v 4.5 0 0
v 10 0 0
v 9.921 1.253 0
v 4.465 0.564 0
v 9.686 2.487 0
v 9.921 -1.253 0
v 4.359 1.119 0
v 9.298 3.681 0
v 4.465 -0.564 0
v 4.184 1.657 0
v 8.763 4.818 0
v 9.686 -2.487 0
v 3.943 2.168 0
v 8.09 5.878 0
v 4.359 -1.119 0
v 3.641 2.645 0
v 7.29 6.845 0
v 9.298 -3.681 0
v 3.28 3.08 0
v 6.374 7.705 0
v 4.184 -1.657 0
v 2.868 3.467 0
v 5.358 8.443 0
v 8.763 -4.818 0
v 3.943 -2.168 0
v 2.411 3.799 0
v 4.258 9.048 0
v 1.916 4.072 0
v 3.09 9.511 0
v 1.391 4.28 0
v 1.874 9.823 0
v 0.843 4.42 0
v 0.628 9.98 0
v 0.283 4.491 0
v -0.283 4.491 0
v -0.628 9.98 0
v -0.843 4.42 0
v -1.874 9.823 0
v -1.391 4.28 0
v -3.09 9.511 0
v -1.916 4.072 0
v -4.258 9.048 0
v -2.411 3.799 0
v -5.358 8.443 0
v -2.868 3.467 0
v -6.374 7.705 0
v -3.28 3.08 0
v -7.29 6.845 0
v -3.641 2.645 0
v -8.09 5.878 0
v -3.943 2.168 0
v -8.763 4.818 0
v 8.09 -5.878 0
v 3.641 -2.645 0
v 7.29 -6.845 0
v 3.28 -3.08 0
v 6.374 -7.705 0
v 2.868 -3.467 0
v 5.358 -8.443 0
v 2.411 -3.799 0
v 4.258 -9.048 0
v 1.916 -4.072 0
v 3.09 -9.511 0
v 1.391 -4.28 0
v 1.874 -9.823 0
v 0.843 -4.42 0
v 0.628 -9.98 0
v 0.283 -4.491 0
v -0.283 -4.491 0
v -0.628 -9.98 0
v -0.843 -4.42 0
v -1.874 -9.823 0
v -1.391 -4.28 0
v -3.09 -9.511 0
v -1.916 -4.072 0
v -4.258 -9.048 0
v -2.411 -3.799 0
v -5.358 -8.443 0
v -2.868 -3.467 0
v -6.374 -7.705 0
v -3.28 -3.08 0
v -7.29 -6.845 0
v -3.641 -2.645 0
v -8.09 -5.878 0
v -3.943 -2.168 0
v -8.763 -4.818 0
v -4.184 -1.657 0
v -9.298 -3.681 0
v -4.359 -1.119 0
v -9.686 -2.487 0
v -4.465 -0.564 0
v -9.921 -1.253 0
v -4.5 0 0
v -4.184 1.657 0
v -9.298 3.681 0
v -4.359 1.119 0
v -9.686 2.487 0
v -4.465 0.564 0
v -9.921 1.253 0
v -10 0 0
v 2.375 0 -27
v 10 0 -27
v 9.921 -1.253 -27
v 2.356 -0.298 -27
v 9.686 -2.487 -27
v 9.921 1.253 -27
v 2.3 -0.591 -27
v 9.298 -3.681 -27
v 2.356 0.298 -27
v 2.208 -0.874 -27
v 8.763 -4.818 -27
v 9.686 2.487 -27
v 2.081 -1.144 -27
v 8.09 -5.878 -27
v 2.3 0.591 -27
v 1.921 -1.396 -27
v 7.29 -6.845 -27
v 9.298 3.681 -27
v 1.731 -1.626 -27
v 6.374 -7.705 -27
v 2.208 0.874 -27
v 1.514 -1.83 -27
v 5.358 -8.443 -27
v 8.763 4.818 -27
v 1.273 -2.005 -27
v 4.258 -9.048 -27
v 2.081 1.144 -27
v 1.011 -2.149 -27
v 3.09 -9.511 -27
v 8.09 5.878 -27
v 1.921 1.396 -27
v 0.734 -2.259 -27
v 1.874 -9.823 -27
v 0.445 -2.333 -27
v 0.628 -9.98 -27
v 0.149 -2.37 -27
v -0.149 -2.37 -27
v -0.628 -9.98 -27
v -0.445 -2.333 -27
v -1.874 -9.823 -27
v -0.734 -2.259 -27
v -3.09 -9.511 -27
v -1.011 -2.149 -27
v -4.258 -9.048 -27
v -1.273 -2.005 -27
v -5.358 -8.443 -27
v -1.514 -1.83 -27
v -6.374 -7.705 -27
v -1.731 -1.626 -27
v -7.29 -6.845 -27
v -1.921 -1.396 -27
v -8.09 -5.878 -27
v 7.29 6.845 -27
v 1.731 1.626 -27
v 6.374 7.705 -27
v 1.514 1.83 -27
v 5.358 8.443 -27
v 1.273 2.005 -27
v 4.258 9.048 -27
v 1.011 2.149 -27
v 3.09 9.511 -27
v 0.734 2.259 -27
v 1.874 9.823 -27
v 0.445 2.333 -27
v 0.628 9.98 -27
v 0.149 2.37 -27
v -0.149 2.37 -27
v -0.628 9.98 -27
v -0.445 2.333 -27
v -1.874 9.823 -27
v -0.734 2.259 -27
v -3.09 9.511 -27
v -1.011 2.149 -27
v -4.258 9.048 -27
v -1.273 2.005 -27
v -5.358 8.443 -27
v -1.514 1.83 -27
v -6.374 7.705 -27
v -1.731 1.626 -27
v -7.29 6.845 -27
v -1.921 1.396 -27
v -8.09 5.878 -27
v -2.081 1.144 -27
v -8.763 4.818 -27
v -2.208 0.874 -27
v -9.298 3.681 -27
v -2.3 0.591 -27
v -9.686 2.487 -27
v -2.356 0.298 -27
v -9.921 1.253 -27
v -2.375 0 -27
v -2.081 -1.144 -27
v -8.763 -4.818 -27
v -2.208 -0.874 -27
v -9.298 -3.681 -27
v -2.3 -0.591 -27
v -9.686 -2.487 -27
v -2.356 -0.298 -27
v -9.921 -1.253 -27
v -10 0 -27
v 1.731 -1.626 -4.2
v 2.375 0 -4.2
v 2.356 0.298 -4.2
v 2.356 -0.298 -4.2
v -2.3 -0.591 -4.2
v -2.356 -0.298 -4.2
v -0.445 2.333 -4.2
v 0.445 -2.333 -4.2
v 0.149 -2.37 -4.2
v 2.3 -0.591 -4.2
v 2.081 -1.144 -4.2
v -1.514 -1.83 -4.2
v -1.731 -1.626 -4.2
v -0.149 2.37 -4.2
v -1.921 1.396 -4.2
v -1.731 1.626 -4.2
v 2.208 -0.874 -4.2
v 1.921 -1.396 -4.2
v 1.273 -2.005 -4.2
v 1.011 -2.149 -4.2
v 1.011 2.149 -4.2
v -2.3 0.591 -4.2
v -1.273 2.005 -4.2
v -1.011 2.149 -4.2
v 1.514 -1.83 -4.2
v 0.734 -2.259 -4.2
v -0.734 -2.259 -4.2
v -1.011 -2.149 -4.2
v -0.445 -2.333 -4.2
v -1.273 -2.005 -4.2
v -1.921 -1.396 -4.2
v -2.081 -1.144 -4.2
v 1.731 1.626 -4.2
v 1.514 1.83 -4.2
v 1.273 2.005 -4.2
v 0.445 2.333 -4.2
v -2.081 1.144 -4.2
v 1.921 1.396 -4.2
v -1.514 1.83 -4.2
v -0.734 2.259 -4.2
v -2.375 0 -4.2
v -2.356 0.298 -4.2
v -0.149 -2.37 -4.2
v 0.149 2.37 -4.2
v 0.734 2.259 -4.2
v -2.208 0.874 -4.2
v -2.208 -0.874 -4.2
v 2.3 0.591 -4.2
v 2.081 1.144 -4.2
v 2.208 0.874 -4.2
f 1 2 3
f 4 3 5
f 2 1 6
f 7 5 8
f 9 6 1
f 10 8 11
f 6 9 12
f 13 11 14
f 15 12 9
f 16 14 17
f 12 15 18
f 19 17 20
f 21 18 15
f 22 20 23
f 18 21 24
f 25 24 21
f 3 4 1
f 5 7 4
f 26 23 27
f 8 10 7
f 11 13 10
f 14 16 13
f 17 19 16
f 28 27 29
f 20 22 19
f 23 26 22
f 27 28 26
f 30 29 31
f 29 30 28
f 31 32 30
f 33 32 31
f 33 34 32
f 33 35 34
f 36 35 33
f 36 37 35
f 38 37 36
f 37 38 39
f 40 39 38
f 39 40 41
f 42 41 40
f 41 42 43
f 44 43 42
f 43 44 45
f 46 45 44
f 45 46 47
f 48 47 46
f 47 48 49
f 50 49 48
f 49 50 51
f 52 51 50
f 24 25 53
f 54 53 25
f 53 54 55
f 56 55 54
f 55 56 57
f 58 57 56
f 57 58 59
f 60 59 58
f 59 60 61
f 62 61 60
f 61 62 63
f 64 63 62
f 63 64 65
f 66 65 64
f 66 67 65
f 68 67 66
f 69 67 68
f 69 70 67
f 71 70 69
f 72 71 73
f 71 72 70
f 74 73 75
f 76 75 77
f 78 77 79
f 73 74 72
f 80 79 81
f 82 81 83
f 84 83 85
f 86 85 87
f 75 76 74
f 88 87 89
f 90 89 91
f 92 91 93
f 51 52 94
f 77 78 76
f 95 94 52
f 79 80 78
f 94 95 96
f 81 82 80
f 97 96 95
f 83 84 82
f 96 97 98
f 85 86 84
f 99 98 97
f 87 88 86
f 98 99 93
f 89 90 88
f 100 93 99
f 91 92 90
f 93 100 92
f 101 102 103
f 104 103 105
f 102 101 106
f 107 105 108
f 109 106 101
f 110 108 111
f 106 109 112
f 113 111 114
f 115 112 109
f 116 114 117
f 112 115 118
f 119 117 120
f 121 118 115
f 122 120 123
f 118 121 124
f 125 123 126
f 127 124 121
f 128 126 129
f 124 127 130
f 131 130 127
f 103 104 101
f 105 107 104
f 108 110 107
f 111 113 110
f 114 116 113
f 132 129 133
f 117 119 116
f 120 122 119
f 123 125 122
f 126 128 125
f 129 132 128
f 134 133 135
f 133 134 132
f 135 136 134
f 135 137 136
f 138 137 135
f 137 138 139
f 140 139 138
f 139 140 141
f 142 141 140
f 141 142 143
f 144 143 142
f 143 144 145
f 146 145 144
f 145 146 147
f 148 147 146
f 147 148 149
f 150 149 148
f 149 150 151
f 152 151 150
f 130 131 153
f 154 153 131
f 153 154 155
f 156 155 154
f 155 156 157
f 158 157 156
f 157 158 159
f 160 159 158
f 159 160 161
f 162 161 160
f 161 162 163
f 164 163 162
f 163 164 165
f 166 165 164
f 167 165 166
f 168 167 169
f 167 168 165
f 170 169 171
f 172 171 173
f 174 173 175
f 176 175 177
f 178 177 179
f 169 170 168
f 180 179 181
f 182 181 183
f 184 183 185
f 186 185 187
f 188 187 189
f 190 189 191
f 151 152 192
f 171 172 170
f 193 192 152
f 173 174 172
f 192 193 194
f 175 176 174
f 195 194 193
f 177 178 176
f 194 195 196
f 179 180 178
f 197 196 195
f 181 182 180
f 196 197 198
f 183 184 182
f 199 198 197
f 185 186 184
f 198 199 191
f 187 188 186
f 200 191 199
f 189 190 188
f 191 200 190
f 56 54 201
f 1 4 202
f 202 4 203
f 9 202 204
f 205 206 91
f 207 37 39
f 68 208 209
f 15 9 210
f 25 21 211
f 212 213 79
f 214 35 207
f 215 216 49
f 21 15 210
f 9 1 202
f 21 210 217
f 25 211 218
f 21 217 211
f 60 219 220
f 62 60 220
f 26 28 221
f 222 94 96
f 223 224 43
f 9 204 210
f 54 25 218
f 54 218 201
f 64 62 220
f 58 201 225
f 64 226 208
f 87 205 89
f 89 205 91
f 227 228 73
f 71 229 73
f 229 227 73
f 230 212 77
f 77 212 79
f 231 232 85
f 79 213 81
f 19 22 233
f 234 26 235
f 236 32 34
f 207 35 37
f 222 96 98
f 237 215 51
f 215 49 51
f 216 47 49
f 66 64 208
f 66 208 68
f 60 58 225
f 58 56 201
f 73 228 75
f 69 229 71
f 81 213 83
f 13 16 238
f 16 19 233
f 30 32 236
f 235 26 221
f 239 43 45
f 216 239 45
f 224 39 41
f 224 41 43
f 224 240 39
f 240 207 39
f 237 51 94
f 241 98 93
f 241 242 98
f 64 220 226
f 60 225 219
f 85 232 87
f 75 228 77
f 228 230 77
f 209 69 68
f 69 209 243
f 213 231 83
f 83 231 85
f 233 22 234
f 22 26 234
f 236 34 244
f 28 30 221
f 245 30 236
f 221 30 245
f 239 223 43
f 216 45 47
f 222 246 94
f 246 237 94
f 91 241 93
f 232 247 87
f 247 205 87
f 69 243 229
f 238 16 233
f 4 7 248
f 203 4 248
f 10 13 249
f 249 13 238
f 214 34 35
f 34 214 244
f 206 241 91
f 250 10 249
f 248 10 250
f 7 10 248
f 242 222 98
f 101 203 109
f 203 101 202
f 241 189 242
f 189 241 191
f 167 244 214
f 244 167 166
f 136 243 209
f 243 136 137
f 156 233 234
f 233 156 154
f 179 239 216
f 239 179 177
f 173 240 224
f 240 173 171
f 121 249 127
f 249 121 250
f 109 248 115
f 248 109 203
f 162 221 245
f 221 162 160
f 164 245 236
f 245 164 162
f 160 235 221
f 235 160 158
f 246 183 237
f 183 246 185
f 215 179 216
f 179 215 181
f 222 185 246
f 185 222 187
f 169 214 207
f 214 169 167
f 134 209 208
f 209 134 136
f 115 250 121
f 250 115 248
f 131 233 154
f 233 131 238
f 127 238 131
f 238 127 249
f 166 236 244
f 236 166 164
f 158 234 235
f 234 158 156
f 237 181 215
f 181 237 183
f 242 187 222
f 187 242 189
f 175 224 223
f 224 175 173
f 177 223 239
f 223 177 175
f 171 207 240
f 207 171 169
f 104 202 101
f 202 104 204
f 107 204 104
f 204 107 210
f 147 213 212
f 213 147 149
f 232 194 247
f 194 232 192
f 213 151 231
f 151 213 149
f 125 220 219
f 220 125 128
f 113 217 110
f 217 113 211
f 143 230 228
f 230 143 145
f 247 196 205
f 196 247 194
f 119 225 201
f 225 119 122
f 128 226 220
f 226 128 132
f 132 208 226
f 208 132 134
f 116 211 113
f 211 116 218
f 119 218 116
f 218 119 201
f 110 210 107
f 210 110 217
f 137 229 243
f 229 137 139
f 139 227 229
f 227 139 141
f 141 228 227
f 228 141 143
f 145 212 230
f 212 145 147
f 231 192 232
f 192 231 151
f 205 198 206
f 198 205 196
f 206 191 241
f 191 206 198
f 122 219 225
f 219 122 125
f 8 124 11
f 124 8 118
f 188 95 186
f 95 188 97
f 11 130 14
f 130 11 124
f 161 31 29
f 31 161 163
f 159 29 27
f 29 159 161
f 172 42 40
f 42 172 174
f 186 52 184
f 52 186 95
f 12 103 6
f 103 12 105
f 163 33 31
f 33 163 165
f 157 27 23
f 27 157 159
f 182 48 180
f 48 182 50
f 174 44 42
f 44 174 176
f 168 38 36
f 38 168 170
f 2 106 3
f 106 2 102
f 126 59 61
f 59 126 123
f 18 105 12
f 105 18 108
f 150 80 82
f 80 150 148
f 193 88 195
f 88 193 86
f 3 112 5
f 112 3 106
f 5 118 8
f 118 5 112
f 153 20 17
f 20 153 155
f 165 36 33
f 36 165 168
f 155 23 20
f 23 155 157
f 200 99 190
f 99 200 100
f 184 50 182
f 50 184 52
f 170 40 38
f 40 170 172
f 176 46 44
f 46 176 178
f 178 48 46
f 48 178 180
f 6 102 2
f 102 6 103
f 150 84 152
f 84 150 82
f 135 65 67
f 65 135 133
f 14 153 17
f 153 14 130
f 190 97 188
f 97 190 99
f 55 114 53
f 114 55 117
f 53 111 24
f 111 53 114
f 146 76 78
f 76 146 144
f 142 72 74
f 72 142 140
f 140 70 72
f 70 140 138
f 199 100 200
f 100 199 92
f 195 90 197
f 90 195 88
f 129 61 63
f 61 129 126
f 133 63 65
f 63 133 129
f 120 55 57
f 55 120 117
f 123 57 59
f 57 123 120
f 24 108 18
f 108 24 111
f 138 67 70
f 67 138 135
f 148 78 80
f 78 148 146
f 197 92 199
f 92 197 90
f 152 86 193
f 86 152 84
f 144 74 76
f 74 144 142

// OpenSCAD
$fn = 50;


difference() {
	union() {
		translate(v = [0, 0, -27.0000000000]) {
			cylinder(h = 27, r = 10.0000000000);
		}
		cylinder(h = 0, r = 16.0000000000);
	}
	union() {
		translate(v = [0, 0, 0]) {
			rotate(a = [0, 0, 0]) {
				difference() {
					union() {
						#translate(v = [0, 0, -27.0000000000]) {
							cylinder(h = 27, r = 2.2500000000);
						}
						#translate(v = [0, 0, -4.2000000000]) {
							cylinder(h = 4.2000000000, r1 = 2.3750000000, r2 = 4.5000000000);
						}
						#translate(v = [0, 0, -27.0000000000]) {
							cylinder(h = 27, r = 2.3750000000);
						}
						#translate(v = [0, 0, -27.0000000000]) {
							cylinder(h = 27, r = 2.2500000000);
						}
					}
					union();
				}
			}
		}
	}
}
